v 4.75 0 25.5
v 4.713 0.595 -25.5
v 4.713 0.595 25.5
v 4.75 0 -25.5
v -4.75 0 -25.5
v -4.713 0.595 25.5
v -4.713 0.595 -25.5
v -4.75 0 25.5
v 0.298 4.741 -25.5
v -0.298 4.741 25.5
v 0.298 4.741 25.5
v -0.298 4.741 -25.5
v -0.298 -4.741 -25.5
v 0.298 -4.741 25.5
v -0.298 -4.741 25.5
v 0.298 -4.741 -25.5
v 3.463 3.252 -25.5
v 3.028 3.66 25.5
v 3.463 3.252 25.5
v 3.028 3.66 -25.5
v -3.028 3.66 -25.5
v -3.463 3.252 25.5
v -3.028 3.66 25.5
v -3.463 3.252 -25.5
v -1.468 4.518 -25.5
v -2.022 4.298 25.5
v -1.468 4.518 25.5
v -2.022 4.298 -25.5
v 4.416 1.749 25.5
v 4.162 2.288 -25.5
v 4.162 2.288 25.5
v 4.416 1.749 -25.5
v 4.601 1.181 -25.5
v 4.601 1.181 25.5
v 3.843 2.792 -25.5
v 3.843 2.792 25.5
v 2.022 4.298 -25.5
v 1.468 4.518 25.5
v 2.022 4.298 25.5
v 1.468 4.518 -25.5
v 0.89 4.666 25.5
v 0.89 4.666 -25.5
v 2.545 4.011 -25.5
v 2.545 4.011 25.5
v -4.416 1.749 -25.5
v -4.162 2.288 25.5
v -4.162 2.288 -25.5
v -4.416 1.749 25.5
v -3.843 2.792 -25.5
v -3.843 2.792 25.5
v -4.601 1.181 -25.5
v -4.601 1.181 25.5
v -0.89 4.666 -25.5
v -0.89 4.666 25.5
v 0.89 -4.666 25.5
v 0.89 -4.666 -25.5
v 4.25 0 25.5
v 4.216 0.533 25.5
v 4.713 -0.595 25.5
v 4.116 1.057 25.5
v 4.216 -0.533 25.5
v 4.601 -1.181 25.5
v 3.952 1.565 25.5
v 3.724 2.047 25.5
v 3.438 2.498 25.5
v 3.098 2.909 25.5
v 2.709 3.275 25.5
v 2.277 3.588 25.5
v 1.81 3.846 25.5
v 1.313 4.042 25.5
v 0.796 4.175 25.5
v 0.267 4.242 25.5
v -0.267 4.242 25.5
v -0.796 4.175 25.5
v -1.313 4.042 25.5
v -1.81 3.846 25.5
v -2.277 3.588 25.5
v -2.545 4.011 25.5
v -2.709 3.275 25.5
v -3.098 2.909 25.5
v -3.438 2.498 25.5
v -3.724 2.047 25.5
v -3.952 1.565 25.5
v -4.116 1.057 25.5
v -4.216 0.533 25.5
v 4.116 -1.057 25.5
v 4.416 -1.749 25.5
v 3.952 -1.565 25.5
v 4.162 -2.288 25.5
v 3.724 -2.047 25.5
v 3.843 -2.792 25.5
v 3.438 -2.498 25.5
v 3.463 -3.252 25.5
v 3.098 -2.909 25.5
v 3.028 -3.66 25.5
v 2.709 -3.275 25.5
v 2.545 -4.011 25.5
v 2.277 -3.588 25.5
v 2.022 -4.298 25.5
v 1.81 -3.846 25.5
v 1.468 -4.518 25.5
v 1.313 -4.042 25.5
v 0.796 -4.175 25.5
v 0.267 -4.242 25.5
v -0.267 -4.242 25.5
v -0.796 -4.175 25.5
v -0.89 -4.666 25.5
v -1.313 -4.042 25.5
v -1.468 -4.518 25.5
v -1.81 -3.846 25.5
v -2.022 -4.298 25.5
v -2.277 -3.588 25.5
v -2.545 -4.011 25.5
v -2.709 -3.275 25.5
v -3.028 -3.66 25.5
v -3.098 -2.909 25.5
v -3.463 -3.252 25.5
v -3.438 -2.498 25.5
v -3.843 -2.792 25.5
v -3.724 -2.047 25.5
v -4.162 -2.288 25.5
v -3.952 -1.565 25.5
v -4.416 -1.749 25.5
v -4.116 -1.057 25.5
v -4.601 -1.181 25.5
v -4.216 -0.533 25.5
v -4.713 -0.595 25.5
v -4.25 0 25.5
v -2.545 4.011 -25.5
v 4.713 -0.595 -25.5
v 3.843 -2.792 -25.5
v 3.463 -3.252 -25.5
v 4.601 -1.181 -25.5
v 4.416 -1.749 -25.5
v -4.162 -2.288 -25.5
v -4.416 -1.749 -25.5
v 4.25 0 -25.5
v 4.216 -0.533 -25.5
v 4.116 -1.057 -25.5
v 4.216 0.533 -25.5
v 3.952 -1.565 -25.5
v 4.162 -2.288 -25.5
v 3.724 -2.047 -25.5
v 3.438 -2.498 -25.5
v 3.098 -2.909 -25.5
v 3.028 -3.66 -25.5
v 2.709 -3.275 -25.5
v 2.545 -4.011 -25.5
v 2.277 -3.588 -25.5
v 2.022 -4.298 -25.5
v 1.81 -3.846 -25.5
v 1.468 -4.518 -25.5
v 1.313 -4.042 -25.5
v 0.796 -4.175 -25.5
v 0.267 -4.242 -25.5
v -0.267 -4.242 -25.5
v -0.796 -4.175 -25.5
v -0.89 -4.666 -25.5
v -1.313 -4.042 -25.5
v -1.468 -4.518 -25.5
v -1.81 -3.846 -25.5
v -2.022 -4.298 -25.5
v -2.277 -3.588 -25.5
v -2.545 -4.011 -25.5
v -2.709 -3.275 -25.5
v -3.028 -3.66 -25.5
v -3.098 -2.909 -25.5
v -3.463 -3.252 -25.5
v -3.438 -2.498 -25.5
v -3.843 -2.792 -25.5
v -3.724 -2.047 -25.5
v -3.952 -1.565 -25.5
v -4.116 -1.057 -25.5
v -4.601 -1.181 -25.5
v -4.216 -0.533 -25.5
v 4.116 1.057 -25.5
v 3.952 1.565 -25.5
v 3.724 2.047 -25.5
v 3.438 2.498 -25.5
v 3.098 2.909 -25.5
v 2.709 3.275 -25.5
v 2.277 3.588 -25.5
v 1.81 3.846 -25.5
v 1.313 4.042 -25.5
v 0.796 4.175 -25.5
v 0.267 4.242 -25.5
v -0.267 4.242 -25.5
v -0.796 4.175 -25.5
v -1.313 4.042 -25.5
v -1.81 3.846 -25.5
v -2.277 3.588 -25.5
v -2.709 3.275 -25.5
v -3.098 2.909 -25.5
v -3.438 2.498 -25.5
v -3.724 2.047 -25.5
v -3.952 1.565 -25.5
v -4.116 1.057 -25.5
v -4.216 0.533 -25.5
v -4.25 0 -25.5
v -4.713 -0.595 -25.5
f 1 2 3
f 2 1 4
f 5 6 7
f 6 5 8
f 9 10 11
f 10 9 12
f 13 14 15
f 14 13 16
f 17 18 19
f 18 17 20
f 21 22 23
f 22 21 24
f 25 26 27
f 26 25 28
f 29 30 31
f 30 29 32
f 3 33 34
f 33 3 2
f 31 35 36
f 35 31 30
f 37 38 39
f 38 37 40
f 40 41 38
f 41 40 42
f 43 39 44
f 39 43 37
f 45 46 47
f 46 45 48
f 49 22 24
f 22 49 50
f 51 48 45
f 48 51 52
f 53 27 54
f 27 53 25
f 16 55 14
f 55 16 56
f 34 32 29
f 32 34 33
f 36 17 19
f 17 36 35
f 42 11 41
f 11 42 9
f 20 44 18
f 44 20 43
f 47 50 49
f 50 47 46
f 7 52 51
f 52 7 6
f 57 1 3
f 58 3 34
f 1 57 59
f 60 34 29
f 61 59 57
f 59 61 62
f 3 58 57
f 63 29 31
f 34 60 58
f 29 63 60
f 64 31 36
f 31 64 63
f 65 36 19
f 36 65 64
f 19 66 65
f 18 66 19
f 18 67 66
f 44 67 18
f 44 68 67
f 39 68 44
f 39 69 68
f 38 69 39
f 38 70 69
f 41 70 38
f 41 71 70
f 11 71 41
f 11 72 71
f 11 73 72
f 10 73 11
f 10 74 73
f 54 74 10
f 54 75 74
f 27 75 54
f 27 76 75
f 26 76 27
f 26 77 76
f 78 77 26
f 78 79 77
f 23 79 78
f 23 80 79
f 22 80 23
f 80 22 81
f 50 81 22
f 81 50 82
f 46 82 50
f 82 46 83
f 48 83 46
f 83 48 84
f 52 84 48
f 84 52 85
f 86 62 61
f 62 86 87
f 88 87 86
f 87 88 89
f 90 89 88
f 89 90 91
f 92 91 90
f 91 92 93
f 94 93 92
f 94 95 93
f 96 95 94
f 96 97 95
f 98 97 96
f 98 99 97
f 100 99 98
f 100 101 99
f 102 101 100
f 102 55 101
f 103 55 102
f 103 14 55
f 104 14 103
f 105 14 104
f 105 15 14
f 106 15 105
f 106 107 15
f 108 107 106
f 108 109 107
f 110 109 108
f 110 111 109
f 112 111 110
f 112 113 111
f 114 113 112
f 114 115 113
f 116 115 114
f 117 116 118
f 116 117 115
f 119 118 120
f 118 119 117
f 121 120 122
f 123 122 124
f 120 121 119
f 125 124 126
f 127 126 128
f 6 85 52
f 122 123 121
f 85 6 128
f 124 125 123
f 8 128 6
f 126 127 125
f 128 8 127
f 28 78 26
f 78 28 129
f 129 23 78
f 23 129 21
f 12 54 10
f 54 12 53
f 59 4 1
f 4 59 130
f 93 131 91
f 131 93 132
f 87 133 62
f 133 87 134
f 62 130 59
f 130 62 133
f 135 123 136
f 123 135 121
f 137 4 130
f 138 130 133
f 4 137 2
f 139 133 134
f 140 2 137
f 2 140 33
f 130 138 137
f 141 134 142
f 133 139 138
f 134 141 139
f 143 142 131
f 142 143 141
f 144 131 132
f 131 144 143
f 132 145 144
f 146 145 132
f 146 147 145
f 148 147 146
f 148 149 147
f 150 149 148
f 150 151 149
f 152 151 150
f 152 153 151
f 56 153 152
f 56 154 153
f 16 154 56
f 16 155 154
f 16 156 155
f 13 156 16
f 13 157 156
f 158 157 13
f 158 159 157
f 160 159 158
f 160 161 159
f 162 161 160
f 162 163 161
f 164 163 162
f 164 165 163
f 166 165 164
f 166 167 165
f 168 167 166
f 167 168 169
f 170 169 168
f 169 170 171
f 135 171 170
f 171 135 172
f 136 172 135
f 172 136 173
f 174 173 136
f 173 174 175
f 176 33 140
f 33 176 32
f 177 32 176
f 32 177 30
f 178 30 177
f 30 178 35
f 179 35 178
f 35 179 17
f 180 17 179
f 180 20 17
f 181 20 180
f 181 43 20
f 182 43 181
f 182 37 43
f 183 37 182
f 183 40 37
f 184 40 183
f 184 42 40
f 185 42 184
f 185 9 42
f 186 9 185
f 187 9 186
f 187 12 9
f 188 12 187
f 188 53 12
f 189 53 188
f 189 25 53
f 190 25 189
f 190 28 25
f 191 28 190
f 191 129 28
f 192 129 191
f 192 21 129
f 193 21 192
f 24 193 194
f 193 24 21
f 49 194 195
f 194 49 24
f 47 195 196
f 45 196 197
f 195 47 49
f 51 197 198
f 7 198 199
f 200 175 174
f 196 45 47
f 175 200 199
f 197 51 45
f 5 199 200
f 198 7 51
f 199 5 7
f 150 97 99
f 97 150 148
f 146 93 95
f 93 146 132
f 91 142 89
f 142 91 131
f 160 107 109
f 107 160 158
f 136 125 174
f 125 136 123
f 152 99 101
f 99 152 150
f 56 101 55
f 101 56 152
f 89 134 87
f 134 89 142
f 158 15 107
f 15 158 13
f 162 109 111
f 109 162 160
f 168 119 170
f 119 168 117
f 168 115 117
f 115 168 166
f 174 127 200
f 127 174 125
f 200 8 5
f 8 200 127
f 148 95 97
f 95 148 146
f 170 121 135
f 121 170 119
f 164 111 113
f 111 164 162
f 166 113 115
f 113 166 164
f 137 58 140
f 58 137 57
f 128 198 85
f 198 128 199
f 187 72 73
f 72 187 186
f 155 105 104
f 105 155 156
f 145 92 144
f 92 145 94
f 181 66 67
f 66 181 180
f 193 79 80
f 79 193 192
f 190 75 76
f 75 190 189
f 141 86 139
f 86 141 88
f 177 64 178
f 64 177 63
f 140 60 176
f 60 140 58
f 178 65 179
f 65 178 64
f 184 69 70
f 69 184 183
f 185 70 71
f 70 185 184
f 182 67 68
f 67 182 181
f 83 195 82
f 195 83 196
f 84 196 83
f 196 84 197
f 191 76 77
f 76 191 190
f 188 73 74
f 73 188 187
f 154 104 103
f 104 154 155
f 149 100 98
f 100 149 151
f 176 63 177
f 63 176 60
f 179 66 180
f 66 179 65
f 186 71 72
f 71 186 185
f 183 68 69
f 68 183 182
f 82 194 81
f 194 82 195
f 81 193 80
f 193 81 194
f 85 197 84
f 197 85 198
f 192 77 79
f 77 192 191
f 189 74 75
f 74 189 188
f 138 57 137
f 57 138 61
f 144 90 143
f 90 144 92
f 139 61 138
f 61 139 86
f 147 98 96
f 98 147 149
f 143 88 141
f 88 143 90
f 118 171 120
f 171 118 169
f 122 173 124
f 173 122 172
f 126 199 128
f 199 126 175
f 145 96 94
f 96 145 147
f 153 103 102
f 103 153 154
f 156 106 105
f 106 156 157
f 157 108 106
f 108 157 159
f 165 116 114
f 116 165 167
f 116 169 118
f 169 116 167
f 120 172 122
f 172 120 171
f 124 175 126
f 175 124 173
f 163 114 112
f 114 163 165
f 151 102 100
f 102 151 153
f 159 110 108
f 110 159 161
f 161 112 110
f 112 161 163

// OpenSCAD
$fn = 50;


difference() {
	union() {
		translate(v = [0, 0, -25.5000000000]) {
			cylinder(h = 51, r = 4.7500000000);
		}
	}
	union() {
		translate(v = [0, 0, -100.0000000000]) {
			cylinder(h = 200, r = 4.2500000000);
		}
	}
}
